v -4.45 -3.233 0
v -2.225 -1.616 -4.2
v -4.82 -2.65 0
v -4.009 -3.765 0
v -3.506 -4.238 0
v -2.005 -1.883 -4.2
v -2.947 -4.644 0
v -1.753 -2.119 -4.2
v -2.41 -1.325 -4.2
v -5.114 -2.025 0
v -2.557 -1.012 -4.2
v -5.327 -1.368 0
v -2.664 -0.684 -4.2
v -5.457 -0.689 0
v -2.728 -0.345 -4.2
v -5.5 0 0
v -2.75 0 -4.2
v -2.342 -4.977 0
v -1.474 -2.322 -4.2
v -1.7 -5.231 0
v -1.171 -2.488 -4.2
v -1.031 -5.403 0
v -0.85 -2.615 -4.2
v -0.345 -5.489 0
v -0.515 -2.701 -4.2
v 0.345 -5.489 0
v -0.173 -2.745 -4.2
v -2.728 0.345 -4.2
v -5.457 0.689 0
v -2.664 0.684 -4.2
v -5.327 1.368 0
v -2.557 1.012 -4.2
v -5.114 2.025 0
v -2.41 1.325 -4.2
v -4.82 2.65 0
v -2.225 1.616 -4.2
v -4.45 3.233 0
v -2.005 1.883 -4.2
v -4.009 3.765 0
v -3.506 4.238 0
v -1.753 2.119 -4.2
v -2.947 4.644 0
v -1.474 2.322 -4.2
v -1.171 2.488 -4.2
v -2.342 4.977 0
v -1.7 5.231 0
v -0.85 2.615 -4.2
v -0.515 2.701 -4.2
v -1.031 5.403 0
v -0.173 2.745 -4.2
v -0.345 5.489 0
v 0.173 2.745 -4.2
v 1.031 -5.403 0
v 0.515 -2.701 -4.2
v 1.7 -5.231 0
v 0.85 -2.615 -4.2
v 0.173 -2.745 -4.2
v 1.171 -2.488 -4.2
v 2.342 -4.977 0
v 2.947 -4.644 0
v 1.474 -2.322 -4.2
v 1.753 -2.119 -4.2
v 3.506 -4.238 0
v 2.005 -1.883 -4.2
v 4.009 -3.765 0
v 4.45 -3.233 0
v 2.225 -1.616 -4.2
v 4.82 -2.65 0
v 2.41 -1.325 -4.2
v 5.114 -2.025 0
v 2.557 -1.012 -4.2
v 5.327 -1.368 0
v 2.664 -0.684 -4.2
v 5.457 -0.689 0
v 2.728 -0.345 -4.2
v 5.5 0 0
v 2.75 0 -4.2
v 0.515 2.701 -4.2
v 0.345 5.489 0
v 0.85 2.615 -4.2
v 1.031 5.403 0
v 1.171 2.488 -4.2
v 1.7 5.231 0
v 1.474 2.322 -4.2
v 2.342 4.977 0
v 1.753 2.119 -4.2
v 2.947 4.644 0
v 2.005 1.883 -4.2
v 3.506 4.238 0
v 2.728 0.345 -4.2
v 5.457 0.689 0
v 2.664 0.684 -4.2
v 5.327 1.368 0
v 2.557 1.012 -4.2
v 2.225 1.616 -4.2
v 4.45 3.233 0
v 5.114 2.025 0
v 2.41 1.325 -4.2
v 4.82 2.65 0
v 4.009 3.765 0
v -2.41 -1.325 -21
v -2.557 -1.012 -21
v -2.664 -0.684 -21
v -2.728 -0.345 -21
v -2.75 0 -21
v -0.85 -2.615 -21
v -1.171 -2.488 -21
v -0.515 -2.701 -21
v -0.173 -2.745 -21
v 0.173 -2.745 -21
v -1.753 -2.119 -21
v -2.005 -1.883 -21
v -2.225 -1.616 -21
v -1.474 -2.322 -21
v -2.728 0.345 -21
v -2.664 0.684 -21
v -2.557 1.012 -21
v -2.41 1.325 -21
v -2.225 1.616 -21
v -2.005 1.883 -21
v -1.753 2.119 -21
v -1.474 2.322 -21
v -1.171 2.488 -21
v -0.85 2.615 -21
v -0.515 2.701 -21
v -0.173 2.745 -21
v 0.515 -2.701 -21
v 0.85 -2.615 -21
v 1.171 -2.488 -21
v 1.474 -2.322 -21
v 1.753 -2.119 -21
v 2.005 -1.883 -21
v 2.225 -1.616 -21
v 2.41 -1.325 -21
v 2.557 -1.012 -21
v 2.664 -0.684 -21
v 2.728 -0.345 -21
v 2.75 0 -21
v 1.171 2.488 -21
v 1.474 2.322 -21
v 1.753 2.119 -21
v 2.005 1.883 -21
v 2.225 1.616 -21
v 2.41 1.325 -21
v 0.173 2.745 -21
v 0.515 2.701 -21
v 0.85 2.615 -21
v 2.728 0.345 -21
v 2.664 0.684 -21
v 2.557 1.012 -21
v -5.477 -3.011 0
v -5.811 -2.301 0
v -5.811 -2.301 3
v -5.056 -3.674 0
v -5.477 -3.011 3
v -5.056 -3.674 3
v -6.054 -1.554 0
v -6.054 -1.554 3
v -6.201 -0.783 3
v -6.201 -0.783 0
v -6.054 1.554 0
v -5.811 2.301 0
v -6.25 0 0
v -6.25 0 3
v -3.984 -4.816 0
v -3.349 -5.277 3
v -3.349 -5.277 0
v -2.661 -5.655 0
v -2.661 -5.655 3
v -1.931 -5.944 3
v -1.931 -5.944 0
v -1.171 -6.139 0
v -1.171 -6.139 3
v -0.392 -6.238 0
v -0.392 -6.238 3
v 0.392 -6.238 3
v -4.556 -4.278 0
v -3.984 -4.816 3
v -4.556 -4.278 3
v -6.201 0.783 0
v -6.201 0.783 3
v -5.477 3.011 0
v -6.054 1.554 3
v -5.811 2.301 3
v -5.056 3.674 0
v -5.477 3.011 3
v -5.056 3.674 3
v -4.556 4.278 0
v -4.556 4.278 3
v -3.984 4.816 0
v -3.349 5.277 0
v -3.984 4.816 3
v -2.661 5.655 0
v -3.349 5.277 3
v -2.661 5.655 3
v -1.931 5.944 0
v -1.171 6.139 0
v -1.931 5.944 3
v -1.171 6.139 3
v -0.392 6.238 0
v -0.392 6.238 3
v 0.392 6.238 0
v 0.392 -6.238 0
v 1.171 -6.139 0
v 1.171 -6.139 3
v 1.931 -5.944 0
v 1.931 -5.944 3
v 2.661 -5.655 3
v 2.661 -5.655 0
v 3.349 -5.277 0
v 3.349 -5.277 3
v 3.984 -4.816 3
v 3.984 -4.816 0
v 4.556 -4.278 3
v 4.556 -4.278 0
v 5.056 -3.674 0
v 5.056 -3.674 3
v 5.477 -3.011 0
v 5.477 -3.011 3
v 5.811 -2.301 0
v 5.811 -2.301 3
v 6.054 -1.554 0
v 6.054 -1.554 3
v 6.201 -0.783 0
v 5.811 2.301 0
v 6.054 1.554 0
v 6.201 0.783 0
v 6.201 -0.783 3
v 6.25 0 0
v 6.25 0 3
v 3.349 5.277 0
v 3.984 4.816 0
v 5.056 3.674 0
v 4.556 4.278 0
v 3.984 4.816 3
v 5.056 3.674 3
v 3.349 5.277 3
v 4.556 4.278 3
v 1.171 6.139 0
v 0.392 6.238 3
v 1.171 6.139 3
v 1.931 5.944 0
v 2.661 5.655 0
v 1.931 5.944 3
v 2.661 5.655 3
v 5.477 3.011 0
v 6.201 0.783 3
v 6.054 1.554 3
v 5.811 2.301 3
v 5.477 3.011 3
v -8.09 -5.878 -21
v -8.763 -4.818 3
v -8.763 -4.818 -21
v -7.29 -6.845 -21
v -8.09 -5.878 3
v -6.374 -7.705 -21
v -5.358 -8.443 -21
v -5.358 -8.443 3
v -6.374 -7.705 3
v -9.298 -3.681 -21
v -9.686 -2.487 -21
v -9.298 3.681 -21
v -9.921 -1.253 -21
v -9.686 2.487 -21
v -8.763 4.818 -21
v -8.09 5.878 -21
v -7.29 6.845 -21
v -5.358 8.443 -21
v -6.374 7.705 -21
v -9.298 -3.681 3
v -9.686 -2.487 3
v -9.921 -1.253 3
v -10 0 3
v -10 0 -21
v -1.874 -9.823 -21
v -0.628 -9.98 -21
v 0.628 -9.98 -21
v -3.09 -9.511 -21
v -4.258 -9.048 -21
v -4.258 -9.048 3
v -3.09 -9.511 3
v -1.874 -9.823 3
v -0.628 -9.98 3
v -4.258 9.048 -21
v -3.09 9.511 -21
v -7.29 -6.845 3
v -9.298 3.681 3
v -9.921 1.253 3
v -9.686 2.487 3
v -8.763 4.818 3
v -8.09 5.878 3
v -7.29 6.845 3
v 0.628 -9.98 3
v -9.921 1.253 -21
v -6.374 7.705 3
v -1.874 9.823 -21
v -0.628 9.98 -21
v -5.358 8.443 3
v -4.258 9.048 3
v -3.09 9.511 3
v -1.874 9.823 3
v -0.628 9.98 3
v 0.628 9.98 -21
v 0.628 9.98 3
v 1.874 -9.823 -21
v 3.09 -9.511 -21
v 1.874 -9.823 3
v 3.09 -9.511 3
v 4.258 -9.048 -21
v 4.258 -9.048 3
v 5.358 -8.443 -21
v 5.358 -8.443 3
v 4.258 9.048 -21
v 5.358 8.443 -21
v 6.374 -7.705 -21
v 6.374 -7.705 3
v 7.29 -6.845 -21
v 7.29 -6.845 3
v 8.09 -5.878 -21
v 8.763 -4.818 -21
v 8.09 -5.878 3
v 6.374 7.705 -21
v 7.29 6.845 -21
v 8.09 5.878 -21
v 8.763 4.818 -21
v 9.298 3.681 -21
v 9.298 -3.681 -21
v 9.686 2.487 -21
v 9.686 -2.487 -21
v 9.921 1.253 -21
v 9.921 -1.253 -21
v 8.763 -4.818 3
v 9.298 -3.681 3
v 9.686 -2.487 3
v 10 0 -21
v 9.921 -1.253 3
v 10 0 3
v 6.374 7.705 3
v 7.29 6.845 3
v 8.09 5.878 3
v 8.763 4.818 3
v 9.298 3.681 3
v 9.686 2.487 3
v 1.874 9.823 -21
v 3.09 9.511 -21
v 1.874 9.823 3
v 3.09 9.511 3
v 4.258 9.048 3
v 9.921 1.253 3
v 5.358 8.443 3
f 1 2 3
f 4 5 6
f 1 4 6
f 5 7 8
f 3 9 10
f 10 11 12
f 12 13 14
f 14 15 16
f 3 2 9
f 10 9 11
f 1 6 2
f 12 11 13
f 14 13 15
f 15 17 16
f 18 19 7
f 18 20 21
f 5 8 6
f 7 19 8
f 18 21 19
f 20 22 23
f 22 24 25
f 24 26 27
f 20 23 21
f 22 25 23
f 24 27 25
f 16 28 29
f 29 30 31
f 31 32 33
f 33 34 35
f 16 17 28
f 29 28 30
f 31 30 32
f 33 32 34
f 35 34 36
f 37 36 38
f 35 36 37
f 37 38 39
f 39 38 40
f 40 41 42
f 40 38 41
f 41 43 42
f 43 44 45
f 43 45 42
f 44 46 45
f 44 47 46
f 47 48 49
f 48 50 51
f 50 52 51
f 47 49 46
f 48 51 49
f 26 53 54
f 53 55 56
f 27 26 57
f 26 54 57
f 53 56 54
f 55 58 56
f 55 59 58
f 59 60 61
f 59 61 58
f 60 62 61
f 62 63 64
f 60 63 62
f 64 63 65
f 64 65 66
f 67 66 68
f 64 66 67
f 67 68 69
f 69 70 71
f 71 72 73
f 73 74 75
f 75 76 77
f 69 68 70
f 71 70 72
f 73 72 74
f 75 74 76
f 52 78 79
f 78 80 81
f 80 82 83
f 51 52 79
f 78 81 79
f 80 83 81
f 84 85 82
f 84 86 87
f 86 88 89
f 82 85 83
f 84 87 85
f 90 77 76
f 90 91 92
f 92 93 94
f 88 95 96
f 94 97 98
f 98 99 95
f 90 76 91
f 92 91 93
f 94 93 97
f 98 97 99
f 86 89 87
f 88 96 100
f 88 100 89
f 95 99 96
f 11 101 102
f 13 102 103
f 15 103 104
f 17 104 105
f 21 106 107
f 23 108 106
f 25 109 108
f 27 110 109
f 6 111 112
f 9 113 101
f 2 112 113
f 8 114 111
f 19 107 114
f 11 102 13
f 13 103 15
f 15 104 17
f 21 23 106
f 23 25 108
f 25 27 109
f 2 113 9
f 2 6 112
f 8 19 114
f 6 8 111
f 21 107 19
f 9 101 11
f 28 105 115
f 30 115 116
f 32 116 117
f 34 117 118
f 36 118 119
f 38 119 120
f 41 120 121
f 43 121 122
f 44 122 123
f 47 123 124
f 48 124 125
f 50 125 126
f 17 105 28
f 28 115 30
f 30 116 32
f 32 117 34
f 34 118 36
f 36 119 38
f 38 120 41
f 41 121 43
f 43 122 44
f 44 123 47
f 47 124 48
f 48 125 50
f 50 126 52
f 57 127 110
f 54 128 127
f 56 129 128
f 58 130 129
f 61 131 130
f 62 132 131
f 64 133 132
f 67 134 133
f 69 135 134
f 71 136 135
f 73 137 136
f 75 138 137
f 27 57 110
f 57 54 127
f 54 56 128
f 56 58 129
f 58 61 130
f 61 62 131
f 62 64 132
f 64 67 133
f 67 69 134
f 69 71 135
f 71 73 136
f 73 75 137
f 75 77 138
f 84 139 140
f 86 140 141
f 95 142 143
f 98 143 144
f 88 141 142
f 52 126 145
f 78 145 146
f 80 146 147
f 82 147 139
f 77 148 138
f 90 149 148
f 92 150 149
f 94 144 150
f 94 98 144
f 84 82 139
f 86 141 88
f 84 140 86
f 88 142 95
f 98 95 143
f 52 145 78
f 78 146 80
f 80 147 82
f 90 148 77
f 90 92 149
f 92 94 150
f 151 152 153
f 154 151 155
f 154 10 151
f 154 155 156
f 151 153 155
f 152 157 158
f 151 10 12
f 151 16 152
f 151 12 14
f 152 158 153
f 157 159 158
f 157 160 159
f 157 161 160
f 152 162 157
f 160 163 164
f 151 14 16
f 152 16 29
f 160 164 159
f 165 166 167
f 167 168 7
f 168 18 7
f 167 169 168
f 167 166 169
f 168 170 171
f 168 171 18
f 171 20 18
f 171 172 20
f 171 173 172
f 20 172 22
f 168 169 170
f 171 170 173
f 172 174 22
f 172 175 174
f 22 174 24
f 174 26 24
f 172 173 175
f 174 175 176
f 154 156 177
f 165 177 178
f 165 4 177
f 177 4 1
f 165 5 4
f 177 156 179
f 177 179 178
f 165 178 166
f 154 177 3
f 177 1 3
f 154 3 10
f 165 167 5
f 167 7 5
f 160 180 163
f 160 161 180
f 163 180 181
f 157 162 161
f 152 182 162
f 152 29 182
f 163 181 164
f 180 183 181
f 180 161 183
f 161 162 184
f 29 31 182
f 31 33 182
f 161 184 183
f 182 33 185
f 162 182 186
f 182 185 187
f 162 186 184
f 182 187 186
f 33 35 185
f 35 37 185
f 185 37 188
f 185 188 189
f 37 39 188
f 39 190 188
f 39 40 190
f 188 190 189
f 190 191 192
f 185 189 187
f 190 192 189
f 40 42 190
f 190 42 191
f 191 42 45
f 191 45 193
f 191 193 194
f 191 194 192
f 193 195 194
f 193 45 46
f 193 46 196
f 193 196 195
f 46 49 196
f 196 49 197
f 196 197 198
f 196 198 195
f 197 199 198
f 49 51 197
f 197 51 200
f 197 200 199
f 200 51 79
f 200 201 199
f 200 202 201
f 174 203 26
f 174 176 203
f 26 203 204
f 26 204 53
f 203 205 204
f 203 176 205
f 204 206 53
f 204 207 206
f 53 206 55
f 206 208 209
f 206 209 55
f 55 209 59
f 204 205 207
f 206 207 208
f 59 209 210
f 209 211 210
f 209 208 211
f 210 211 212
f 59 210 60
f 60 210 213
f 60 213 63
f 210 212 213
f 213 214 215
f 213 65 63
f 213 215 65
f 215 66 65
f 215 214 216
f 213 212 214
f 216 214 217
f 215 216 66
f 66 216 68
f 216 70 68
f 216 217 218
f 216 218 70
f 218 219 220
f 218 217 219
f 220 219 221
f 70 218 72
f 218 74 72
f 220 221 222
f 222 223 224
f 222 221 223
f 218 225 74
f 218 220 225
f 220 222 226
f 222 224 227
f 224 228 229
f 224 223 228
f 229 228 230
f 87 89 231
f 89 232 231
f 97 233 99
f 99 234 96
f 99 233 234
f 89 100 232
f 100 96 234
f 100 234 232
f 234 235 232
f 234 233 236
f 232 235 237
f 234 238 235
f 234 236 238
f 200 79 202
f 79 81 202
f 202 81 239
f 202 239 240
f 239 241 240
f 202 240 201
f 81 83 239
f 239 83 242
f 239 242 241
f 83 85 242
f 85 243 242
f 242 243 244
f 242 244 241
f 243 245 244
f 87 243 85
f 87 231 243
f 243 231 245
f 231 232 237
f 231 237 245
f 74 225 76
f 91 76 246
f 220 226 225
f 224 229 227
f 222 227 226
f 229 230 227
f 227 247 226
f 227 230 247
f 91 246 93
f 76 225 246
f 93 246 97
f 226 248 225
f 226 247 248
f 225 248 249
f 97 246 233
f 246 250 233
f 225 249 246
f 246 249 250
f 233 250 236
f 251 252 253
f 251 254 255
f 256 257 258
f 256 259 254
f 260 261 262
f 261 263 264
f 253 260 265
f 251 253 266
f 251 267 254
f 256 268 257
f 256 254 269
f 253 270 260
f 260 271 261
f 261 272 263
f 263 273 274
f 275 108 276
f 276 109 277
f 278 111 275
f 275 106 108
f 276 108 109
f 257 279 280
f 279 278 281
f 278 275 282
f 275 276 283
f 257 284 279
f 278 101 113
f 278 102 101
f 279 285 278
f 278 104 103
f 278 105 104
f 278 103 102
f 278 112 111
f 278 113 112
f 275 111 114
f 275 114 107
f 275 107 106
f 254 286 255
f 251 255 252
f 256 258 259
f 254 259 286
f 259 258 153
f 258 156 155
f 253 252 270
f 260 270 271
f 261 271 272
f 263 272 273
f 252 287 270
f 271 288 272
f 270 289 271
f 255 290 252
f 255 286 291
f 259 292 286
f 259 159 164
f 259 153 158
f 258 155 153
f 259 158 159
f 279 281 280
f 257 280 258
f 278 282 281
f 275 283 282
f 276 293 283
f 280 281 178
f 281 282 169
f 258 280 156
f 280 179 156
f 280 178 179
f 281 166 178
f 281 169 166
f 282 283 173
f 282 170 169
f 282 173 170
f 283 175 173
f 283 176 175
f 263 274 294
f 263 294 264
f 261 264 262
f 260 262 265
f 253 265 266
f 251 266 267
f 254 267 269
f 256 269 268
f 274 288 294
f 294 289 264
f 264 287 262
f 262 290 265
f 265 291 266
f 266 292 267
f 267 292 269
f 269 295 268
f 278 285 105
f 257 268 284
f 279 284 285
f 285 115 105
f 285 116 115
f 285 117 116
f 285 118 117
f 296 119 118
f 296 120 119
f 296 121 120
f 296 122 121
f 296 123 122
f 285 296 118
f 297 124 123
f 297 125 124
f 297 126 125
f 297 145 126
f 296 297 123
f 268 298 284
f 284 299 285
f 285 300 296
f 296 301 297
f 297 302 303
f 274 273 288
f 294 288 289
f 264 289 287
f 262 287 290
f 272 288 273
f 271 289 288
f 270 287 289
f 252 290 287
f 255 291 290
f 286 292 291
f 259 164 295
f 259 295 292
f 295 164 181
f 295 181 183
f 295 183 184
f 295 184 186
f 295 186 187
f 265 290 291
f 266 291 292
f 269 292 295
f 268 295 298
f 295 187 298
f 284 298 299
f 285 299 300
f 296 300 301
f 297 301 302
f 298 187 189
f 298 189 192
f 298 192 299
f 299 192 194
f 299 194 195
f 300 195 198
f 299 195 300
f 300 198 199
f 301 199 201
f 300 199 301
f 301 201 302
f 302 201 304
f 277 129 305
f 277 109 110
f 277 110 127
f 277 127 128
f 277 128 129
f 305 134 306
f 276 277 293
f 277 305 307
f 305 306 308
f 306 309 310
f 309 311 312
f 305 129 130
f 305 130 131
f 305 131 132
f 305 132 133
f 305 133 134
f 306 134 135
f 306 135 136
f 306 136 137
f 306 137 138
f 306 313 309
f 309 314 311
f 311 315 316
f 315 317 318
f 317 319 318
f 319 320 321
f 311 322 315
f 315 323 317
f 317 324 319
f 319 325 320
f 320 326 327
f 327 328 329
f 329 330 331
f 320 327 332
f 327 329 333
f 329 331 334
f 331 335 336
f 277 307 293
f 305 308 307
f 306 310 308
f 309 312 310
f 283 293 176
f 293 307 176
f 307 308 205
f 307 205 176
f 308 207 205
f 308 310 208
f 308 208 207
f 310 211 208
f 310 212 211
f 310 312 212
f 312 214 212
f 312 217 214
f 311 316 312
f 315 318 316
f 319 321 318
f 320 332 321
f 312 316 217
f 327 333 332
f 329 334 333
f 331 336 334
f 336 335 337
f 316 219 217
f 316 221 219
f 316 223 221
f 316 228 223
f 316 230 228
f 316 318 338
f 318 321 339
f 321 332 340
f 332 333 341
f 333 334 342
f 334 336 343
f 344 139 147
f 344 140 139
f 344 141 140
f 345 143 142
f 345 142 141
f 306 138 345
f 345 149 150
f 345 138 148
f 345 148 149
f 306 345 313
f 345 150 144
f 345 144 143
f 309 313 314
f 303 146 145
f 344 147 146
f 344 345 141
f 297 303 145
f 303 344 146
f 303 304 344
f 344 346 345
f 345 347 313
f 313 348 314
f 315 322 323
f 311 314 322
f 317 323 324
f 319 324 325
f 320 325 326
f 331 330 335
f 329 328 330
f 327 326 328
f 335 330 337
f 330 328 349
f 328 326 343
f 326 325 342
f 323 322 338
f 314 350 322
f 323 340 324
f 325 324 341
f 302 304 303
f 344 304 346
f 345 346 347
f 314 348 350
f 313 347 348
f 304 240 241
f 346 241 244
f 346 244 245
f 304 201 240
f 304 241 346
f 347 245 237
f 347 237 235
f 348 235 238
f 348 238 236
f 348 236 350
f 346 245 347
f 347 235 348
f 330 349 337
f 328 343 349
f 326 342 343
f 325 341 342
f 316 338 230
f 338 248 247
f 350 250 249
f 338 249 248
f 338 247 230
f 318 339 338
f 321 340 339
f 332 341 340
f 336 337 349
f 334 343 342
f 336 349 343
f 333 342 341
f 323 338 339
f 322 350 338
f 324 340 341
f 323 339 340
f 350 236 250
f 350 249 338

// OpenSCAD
$fn = 50;

difference() {
	union() {
		translate(v = [0, 0, -21.0]) {
			cylinder(h = 24, r = 10.0);
		}
	}
	union() {
		translate(v = [0, 0, 0]) {
			rotate(a = [0, 0, 0]) {
				difference() {
					union() {
						translate(v = [0, 0, -24.0]) {
							cylinder(h = 24, r = 2.25);
						}
						translate(v = [0, 0, -4.2]) {
							cylinder(h = 4.2, r1 = 2.75, r2 = 5.5);
						}
						translate(v = [0, 0, -24.0]) {
							cylinder(h = 24, r = 2.75);
						}
						translate(v = [0, 0, -24.0]) {
							cylinder(h = 24, r = 2.25);
						}
					}
					union();
				}
			}
		}
		#cylinder(h = 3, r = 6.25);
	}
}
